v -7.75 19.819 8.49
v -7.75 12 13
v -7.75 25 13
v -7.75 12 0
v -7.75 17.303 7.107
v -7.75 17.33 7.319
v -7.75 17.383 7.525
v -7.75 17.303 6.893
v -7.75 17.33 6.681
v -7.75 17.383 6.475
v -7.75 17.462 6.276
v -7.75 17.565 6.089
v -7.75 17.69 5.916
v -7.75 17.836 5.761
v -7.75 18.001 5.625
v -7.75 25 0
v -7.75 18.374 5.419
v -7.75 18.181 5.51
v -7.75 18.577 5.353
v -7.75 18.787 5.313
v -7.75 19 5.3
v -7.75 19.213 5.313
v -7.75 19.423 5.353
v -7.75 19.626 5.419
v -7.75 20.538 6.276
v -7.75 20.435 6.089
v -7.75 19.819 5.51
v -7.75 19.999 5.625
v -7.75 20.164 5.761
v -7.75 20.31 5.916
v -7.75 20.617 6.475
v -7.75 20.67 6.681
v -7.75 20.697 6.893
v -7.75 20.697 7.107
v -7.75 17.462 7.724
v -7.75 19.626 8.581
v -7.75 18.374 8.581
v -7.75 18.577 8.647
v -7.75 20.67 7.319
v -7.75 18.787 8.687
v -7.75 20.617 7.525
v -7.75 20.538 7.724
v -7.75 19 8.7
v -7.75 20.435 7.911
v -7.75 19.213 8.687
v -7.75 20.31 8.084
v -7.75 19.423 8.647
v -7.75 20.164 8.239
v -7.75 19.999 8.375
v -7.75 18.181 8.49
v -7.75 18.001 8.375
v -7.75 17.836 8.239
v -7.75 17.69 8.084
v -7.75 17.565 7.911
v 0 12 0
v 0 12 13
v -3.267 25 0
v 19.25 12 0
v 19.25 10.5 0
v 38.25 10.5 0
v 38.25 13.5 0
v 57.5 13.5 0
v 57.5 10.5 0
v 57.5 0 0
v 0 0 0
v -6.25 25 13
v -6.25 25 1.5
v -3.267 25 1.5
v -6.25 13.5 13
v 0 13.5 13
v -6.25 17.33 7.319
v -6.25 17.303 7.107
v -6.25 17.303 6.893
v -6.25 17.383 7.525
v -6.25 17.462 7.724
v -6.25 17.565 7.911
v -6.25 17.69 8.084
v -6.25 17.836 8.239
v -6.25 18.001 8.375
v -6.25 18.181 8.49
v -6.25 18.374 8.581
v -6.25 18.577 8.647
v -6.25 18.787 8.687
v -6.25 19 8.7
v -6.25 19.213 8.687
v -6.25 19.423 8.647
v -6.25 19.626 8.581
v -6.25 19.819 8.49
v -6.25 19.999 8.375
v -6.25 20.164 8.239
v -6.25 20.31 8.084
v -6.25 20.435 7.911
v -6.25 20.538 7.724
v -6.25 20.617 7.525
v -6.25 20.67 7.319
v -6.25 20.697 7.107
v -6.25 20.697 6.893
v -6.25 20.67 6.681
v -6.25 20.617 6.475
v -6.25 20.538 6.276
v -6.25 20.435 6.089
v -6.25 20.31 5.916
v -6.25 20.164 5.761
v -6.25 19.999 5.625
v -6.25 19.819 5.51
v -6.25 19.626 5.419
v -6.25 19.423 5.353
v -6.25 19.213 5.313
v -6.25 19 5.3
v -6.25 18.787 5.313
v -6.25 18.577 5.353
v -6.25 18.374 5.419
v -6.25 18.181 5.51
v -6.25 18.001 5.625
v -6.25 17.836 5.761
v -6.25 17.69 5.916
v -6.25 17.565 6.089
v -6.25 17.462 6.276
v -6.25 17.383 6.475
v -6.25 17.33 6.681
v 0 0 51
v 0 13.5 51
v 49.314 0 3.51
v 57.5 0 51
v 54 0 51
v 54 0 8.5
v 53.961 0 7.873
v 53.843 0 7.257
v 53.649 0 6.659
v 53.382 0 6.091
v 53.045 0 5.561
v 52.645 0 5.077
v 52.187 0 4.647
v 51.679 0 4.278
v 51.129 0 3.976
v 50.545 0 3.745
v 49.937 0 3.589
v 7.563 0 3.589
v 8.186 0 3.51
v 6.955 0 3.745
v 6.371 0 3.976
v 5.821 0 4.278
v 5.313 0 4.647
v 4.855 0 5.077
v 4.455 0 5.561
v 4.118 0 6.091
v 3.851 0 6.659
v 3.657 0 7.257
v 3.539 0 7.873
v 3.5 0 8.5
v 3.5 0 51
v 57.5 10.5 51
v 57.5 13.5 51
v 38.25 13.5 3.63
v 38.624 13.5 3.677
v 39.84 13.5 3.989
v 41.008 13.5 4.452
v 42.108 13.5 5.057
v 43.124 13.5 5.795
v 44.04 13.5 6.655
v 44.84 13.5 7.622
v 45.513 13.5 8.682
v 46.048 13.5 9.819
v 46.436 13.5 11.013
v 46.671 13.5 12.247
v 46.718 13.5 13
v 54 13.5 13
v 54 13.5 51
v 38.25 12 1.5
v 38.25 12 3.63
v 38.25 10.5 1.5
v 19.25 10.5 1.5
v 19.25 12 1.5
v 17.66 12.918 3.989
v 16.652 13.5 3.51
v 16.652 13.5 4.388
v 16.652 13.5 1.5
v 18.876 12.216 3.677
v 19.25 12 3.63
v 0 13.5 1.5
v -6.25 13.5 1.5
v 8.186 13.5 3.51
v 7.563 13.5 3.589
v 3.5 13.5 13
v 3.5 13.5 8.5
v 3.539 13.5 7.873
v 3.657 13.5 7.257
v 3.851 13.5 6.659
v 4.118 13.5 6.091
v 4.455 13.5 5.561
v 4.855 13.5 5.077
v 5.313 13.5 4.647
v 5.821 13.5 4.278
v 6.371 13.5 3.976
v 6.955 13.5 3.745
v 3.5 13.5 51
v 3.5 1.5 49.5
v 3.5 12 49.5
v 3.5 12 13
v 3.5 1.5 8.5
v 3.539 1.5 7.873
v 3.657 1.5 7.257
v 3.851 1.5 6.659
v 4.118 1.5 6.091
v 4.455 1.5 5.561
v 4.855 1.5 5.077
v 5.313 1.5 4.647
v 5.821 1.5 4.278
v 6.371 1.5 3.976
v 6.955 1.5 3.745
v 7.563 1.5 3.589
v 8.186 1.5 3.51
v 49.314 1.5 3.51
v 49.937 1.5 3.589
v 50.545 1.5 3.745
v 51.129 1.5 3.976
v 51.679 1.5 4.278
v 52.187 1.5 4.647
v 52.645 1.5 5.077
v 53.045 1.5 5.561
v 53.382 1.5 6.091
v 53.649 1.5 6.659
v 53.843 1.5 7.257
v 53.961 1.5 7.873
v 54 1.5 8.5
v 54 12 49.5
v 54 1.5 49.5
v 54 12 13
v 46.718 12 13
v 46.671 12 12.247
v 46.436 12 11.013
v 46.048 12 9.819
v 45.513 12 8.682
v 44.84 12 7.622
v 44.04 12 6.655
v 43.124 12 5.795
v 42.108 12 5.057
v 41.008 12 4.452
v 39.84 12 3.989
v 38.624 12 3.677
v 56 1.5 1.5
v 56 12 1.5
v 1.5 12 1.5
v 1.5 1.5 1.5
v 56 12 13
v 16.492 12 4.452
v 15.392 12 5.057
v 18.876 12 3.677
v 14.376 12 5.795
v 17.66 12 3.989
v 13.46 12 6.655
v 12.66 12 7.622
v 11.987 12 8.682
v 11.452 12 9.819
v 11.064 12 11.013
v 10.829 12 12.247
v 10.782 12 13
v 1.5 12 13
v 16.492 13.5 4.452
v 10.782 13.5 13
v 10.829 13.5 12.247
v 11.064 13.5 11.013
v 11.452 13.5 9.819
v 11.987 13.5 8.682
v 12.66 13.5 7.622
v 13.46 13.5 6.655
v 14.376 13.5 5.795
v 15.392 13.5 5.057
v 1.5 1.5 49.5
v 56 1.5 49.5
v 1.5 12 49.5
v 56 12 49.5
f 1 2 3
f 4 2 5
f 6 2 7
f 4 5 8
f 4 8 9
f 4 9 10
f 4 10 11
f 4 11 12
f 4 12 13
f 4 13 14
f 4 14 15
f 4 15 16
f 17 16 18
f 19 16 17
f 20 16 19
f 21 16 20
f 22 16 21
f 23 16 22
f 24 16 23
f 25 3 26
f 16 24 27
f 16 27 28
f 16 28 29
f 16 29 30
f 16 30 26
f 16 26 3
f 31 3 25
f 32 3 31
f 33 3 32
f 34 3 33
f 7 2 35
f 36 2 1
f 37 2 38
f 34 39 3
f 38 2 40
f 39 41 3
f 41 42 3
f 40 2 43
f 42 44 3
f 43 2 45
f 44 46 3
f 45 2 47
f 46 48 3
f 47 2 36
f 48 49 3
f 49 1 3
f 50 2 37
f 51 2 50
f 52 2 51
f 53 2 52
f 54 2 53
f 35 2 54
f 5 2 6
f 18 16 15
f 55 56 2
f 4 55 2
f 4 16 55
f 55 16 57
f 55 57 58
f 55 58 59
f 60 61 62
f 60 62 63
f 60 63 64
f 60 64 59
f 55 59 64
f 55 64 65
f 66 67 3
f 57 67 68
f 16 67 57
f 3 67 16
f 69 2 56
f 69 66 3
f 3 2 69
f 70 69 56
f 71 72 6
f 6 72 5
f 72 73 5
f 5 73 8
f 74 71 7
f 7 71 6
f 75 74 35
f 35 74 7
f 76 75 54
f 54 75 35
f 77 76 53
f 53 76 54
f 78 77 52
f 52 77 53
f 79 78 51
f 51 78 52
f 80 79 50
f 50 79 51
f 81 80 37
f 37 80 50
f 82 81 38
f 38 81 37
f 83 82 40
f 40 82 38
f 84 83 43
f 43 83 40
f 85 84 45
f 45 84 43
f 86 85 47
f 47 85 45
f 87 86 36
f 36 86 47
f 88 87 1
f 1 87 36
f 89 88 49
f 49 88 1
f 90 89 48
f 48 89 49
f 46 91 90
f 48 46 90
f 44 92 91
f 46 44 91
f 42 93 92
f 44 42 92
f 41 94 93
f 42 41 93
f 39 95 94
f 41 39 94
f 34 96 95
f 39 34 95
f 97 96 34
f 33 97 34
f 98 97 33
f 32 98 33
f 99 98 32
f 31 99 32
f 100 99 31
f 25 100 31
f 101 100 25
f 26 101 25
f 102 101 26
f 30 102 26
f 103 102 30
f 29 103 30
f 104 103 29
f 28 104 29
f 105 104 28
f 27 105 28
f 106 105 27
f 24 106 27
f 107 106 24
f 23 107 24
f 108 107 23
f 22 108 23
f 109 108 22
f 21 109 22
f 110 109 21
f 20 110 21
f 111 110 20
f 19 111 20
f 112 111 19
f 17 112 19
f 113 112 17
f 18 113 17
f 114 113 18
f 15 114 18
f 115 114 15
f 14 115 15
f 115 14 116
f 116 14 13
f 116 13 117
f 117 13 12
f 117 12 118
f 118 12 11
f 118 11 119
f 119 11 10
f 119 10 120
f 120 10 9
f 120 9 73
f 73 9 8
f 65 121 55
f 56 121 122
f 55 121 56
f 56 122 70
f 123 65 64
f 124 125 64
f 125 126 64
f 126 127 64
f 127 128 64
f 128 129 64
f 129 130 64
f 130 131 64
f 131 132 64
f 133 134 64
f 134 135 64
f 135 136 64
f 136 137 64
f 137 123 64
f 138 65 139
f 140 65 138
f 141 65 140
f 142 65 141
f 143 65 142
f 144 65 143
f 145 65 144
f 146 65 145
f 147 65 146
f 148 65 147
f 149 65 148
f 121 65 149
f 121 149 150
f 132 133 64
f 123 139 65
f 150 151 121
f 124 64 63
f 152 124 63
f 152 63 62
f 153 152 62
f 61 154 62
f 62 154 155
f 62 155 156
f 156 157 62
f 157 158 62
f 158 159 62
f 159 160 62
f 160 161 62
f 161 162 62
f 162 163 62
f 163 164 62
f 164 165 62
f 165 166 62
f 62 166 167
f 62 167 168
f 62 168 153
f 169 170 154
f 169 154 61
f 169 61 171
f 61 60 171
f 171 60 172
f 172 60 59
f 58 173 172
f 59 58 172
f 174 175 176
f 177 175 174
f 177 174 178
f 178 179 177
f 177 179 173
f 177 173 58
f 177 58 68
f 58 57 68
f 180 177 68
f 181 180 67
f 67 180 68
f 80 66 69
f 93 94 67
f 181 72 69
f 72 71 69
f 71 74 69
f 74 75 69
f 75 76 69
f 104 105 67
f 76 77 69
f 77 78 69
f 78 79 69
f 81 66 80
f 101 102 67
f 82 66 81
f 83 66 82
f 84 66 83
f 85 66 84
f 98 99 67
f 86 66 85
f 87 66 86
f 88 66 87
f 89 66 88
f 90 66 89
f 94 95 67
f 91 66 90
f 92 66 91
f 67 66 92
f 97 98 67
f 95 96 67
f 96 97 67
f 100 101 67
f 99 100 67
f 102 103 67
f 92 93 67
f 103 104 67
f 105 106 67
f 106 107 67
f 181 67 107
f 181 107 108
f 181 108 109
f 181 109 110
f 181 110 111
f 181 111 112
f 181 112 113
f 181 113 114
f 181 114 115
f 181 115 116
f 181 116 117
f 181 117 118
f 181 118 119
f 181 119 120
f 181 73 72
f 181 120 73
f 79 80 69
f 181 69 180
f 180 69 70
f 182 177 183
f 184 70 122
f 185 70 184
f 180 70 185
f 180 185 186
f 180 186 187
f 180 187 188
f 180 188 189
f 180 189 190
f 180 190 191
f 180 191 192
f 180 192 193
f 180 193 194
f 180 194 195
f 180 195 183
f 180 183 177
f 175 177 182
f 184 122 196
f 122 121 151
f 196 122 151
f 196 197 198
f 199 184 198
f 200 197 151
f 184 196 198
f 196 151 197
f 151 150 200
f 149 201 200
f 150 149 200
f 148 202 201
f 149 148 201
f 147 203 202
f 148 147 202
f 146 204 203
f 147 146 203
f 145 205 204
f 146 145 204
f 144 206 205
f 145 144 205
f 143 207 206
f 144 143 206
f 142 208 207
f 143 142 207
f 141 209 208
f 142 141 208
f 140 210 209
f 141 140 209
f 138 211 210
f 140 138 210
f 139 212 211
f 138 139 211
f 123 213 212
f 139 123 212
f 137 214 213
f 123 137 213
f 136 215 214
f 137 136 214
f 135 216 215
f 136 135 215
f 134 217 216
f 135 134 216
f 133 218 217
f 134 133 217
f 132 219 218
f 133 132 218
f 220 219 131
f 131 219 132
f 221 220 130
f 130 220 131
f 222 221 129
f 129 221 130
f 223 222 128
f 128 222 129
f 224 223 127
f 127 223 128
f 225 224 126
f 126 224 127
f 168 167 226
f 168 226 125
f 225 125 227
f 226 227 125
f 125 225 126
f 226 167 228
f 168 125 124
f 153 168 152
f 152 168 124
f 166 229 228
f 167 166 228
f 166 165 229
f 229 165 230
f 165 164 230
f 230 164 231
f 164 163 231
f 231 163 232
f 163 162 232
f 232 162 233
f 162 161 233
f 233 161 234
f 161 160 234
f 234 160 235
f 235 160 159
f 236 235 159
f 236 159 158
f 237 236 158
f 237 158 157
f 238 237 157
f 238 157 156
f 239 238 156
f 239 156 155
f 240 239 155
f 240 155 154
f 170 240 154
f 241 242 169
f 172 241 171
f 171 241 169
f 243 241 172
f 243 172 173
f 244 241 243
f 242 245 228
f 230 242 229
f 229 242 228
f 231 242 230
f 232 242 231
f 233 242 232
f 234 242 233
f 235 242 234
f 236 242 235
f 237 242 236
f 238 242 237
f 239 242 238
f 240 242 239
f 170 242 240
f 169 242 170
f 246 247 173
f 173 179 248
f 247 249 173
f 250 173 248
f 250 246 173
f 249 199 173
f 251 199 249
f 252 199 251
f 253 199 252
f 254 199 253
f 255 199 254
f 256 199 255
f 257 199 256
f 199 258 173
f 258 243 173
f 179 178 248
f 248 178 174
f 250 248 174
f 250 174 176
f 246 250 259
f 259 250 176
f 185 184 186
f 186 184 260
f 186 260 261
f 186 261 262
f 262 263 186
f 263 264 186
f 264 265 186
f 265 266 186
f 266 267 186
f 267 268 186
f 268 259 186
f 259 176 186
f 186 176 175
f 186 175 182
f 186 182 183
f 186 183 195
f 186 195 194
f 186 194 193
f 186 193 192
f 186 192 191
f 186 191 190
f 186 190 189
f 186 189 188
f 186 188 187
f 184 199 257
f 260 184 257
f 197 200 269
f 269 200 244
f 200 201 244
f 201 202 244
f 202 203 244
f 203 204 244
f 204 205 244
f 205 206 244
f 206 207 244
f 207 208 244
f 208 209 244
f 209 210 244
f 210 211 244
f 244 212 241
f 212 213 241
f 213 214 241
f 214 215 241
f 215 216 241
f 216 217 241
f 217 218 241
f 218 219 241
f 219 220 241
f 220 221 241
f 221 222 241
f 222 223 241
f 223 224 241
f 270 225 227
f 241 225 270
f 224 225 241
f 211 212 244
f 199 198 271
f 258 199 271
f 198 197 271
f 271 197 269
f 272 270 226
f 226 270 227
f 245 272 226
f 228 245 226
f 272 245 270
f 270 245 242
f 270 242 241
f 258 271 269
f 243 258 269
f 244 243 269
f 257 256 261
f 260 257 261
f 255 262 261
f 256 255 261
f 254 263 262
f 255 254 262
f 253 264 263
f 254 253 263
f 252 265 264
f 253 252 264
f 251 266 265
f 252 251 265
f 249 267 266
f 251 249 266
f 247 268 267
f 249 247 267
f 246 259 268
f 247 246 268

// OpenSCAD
Dl = 54.5;
Db = 10.5;
Dh = 48;

Nl = 70;
Nb = 20;
Nh = 10;
NWr = 10;
NWb = 17;

d = 1.5;

Wb = 2.0;
Wr = 5;

Ab = 19;

r = 1.7;

lx = 7;
ly = 7;

$fn = 50;

module frame1(l, b, h, Wb, Wr, d)
{
	difference(){
		cube([l+2*d,b+2*d,h+2*d]);
		translate([d,d,d])#cube([l,b,h]);
	
		rotate([90,0,0])
		translate([Wb+Wr+d,Wb+Wr+d,-4*d-b]){
			minkowski(){
				cube([l-2*(Wb+Wr),max(l,b,h)+4*d+2*Wr,l+8*d]);
				cylinder(r=Wr,h=1);
			}
		}
	
		rotate([0,-90,0])
		translate([Wb+Wr+d,Wb+Wr+d,-4*d-l]){
			minkowski(){
				cube([max(l,b,h)+4*d+2*Wr,b-2*(Wb+Wr),l+8*d]);
				cylinder(r=Wr,h=1);
			}
		}
	
		translate([Wb+Wr+d,Wb+Wr+d,-4*d]){
			minkowski(){
				cube([l-2*(Wb+Wr),b-2*(Wb+Wr),h+8*d]);
				cylinder(r=Wr,h=1);
			}
		}
	}
}

module frame2(l, b, h, Wl, Wb, Wr, d, rl, xl, yl)
{
	difference(){
		cube([l+2*d,b+2*d,h+2*d]);
		translate([d,d,d]) cube([l,b,h+4*d]);
	
		rotate([90,0,0]){
			translate([Wl+Wr+d,Wb+Wr+d,-4*d-b]){
				minkowski(){
					cube([l-2*(Wl+Wr),max(l,b,h)+4*d+2*Wr,l+8*d]);
					cylinder(r=Wr,h=1);
				}
			}
			translate([xl,yl,-2*d])cylinder(r=rl, h=3*d);
			translate([l+2*d-xl,yl,-2*d])cylinder(r=rl, h=3*d);
		}
		rotate([0,-90,0]){
			translate([Wb+Wr+d,Wb+Wr+d,-4*d-l]){
				minkowski(){
					cube([max(l,b,h)+4*d+2*Wr,b-2*(Wb+Wr),l+8*d]);
					cylinder(r=Wr,h=1);
				}
			}
		}
		translate([Wb+Wr+d,Wb+Wr+d,-4*d]){
			minkowski(){
				cube([l-2*(Wb+Wr),b-2*(Wb+Wr),h+8*d]);
				cylinder(r=Wr,h=1);
			}
		}
	}
}

difference(){
	union(){
		frame1(Dl, Db, Dh, Wb, Wr, d);
		difference(){
			translate([(Dl-Nl)/2,Db+d,0]) frame2(Nl, Nb, Nh, NWb, Wb, NWr, d, 1.7,5.5+d,15+d);
			translate([(Dl-Nl)/2-d,+Db+Nb/2+3*d,-d]) cube([Nl+4*d,Nb+2*d,Nh+4*d]);
		}
	}
	translate([Dl/2-Ab/2+d,Db,-d]) #cube([Ab,3*d+Nb,max(Nh,Dh)+5*d]);
	translate([Dl/2-Ab/2,Db+d*2,-d*2]) #cube([Nl,3*d+Nb,max(Nh,Dh)+5*d]);

	translate([Dl+2*d,Db,-d*2]) #cube([Ab,3*d+Nb,max(Nh,Dh)+5*d]);
	translate([Dl/2-Ab/2+d,Db+d,-d]) rotate([0,0,60]) #cube([Ab,3*d+Nb*2,max(Nh,Dh)+5*d]);
	translate([Dl/2-Nl/2-d,Db+d+lx,ly]) rotate([0,90,0]) #cylinder(r=r, h=3*d);


}
